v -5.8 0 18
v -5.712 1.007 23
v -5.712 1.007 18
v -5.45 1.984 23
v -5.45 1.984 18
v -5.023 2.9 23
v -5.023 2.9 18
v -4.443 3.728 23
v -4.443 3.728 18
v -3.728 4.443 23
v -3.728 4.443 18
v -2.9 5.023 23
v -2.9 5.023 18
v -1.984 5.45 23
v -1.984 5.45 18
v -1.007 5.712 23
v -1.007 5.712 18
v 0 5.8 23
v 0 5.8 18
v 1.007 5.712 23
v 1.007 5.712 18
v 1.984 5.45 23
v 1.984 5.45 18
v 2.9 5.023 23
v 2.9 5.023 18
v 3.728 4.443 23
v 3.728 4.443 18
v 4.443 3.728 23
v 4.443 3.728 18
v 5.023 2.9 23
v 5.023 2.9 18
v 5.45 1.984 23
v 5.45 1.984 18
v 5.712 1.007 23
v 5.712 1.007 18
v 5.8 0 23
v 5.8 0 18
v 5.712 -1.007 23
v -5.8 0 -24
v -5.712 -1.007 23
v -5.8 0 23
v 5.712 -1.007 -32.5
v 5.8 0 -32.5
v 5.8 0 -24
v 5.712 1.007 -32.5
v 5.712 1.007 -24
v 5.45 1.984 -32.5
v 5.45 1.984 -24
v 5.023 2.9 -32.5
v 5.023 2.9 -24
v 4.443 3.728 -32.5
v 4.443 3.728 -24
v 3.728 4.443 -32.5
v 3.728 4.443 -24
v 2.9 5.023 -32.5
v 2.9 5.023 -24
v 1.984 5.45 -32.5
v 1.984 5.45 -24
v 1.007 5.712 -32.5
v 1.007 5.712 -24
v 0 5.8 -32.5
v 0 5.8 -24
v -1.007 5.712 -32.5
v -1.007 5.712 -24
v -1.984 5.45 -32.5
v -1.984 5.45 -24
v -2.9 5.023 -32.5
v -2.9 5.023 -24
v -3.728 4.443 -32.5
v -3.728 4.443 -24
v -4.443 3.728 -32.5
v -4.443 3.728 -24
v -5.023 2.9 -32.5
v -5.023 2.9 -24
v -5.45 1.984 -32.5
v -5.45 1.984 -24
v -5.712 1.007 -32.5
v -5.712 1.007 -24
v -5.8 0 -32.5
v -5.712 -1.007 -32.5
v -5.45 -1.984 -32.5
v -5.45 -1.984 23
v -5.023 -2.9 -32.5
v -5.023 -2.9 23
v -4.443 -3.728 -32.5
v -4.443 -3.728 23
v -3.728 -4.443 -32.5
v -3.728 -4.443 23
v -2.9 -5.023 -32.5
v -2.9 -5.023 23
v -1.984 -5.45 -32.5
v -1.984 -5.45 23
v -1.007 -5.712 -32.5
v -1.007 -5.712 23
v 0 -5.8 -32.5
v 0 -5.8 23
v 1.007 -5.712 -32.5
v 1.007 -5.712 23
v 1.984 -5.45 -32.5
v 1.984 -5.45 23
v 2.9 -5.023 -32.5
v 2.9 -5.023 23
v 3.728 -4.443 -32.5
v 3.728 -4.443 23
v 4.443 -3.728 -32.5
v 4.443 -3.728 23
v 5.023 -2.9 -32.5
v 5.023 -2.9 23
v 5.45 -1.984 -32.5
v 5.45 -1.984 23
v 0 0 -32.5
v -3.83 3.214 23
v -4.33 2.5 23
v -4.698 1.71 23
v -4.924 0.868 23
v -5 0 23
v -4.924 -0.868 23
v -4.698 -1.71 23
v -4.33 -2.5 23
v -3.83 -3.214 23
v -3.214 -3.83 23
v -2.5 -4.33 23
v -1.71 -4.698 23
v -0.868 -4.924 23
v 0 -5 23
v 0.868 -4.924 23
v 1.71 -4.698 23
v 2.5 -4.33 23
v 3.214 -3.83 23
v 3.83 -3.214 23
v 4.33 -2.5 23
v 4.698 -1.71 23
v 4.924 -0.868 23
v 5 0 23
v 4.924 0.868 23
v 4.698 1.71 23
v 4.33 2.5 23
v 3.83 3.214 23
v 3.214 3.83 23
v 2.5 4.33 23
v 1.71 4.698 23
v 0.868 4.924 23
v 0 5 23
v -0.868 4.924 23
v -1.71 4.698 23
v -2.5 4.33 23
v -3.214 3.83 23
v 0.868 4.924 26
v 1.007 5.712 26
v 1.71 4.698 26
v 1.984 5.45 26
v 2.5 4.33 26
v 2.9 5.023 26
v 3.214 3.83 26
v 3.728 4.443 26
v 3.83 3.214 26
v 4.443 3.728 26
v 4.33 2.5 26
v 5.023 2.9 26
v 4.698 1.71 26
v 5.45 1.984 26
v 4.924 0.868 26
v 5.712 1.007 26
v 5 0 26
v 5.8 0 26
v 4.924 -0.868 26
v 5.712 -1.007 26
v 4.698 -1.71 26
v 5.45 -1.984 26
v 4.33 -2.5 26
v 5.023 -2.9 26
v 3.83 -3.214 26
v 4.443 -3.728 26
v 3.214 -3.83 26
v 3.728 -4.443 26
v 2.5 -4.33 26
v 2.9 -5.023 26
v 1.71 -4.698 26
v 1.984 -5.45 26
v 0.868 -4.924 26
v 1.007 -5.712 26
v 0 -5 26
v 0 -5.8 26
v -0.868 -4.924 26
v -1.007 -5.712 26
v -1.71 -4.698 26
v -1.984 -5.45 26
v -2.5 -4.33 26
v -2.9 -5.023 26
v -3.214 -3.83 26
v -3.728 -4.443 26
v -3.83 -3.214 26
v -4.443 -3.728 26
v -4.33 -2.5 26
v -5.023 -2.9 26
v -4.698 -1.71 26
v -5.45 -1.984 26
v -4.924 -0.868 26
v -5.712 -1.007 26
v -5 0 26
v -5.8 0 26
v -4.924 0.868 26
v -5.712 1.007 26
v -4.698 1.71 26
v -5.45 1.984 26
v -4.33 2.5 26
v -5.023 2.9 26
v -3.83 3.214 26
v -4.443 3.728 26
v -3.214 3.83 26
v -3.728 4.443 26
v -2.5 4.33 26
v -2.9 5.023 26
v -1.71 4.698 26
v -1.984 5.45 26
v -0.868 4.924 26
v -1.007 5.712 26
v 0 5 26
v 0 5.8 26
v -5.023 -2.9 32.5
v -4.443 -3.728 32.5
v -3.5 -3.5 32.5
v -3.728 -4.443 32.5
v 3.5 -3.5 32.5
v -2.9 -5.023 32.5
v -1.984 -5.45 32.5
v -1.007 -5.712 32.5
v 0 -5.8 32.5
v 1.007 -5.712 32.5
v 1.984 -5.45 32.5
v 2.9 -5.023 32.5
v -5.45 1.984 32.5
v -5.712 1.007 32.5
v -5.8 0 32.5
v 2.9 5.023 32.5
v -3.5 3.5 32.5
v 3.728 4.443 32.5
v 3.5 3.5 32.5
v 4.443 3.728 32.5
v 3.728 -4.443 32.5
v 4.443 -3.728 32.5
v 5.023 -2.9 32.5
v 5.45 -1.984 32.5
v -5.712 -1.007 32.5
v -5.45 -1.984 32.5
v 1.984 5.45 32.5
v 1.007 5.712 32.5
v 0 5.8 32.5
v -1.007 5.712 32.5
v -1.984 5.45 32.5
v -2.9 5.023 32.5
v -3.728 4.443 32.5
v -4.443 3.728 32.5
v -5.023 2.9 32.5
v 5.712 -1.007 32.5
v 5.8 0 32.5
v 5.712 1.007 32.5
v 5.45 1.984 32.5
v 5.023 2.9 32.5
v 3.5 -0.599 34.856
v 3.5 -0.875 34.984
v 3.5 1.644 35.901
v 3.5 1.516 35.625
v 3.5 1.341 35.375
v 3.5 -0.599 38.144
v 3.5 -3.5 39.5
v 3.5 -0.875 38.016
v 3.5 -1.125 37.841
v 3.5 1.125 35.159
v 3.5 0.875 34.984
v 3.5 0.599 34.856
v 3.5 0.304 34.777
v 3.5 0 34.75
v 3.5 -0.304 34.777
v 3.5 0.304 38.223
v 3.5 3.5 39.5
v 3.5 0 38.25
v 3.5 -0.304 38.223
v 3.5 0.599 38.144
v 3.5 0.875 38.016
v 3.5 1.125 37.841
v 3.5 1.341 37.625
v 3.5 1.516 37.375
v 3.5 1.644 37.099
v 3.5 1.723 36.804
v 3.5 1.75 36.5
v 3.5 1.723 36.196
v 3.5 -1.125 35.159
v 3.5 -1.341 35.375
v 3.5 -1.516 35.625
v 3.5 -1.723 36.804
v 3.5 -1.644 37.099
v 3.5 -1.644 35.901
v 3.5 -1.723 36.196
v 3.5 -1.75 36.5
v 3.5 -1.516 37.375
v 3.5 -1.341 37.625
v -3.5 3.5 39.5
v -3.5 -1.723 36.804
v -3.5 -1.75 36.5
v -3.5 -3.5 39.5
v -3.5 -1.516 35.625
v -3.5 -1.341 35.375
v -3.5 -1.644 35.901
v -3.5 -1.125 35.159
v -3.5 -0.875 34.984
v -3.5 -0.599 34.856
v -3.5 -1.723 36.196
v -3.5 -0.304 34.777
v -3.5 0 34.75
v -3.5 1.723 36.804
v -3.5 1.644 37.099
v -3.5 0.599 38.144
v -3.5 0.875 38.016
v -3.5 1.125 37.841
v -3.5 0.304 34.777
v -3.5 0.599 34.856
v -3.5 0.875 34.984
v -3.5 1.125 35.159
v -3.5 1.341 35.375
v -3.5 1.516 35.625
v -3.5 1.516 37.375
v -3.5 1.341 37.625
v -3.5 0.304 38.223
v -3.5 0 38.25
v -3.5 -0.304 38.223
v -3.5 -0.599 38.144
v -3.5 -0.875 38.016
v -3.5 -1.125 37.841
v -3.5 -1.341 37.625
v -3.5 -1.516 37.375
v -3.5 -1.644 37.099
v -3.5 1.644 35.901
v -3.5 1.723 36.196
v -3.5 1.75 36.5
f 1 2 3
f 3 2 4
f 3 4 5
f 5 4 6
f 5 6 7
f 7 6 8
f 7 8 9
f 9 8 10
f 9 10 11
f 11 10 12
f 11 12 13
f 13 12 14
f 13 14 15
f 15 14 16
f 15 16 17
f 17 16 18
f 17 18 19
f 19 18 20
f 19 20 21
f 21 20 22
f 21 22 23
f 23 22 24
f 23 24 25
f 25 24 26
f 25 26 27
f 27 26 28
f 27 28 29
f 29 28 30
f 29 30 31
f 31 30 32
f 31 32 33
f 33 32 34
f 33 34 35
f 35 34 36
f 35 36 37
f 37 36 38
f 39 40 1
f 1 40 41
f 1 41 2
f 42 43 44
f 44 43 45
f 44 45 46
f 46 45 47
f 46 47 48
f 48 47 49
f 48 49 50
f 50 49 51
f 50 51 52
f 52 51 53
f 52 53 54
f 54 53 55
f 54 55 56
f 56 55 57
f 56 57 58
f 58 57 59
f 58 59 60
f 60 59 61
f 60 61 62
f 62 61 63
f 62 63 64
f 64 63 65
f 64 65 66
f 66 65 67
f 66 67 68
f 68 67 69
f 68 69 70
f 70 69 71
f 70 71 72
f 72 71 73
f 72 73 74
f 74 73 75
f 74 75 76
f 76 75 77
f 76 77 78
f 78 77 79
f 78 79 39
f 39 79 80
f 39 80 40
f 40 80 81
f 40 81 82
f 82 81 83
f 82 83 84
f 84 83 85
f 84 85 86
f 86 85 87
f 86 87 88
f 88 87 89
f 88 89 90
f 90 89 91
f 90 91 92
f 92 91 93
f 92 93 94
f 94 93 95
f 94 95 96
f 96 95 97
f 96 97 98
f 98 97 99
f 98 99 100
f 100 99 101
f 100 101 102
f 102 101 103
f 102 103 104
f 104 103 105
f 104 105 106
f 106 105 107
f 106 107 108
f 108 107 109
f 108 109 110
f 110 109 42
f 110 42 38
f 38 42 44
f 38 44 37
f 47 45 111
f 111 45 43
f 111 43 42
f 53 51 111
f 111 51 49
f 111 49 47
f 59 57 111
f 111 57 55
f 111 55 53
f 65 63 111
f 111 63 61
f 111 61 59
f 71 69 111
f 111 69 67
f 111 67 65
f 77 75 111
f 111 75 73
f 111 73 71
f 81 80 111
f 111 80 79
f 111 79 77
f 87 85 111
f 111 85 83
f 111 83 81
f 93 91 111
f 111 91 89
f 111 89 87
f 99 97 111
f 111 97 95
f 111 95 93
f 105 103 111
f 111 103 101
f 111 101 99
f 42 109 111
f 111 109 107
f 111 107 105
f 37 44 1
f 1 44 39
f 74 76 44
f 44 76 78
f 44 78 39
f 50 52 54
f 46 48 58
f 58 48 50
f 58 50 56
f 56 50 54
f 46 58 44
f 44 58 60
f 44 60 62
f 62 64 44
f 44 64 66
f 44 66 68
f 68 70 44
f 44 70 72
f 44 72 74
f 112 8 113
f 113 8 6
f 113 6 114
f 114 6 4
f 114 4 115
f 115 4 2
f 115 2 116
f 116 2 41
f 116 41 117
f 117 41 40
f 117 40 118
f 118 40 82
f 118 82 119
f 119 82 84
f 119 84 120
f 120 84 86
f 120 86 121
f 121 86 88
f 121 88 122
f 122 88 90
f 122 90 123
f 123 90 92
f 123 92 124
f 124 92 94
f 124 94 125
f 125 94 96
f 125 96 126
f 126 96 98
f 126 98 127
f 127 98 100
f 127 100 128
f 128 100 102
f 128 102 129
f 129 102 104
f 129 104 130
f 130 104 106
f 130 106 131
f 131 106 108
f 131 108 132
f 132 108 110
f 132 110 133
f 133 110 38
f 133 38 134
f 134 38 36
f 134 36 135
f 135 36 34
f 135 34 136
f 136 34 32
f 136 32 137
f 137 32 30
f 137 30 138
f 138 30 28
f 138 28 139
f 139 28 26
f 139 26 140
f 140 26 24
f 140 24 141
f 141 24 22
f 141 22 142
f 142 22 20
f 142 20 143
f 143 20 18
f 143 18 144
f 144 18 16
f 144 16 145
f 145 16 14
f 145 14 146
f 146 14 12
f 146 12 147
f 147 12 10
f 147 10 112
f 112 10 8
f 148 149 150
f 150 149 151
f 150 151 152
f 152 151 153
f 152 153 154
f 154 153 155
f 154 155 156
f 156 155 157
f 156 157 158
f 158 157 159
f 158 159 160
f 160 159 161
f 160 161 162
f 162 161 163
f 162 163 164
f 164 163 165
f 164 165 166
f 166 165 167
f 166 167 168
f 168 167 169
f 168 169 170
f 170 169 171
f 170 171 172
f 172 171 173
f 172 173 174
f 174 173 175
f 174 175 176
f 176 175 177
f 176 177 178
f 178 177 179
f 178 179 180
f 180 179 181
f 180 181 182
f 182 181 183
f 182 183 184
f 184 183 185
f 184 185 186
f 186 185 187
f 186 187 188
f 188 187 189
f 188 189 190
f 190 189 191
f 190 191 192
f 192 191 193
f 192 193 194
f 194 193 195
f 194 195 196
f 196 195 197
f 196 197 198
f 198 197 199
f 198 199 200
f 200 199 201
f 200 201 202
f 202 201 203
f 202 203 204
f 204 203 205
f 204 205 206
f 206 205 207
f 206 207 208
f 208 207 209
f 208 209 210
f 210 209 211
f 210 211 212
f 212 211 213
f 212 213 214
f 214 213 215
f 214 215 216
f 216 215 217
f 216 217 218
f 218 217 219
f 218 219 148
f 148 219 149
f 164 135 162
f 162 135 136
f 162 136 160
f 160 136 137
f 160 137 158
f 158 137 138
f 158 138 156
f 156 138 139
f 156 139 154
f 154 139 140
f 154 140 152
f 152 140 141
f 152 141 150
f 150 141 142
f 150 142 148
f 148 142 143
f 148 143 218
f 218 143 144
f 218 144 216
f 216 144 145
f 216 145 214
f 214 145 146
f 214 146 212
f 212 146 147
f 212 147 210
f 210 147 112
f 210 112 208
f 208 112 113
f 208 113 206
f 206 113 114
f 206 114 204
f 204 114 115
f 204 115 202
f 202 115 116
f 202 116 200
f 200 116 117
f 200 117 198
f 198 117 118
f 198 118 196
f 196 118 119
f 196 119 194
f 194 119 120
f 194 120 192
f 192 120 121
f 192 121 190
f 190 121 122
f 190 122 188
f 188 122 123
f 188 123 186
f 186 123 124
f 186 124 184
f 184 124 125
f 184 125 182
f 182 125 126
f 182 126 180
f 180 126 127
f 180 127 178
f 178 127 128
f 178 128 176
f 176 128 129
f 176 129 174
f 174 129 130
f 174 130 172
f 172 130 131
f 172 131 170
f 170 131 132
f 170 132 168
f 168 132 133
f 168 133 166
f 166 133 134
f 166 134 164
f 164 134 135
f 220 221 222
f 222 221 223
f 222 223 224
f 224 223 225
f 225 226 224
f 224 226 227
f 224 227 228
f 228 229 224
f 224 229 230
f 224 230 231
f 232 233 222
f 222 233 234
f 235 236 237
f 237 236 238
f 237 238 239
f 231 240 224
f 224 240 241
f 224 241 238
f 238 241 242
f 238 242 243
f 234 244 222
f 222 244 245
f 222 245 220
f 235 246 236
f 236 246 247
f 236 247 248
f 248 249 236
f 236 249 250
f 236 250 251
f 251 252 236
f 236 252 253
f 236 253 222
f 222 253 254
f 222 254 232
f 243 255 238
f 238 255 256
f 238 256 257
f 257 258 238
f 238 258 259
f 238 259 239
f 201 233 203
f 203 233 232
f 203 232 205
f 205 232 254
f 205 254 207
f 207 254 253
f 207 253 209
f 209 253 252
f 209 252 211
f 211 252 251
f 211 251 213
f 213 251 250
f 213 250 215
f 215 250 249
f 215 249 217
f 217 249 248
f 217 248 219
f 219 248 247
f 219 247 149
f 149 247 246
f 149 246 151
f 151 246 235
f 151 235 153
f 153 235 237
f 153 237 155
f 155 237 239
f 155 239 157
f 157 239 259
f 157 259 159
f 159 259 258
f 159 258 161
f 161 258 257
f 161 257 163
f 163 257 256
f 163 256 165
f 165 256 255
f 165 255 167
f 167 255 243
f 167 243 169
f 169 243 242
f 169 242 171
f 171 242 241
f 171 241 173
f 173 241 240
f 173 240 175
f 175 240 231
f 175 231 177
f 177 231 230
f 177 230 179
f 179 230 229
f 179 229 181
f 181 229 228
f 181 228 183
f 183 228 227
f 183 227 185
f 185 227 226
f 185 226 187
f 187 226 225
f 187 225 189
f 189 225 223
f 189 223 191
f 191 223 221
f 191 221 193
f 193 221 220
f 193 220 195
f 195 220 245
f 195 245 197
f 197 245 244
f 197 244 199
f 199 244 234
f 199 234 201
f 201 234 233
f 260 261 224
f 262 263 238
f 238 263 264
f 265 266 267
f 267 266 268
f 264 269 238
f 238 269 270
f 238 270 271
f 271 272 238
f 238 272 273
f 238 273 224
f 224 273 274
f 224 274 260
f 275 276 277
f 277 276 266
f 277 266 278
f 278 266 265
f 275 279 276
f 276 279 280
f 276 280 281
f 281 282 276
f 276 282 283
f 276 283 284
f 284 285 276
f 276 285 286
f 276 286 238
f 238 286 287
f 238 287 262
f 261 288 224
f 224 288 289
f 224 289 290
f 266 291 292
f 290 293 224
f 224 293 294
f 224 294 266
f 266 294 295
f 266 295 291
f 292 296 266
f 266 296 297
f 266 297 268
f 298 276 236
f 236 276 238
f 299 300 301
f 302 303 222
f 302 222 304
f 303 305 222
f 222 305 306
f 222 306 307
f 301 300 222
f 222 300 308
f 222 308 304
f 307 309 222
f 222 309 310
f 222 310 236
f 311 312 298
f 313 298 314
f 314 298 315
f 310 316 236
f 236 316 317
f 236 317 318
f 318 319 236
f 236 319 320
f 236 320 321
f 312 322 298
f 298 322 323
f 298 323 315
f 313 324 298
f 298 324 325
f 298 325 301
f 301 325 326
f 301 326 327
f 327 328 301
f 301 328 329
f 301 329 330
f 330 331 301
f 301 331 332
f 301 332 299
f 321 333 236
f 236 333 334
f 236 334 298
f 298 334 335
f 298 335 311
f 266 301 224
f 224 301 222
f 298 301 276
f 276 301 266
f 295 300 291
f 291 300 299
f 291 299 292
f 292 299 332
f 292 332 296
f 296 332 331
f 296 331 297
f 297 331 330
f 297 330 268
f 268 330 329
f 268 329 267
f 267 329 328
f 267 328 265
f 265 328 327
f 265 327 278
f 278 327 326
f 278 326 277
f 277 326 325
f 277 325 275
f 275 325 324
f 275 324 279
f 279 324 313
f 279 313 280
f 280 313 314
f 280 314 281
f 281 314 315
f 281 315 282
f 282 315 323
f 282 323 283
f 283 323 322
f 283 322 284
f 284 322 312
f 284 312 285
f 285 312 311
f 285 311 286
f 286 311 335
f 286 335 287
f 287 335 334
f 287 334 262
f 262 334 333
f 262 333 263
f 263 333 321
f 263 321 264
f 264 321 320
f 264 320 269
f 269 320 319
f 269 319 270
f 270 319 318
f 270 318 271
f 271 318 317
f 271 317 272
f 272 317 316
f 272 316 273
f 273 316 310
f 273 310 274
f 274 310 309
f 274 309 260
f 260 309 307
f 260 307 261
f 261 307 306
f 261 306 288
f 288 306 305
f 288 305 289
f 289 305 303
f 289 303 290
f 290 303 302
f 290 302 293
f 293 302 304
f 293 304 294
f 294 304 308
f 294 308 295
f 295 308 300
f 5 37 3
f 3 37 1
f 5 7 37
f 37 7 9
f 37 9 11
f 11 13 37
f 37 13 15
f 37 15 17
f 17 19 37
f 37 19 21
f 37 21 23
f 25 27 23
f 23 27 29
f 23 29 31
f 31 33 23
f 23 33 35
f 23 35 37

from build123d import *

# Parameters (mm, degrees)
CROQUIS1_R                   = 5.8
SALIENTE_EXTRUIR1_DEPTH      = 32.5
CORTAR_EXTRUIR1_DEPTH        = 24
CORTAR_EXTRUIR_L_MINA1_START = -6.5
CROQUIS3_R                   = 5.8
CROQUIS3_R_2                 = 5
CORTAR_EXTRUIR_L_MINA1_DEPTH = 3
CROQUIS4_W                   = 7
CROQUIS4_H                   = 7
SALIENTE_EXTRUIR2_DEPTH      = 7
CROQUIS6_R                   = 1.75
CORTAR_EXTRUIR3_DEPTH        = 41.992438327
CORTAR_EXTRUIR4_START        = 18
CORTAR_EXTRUIR4_DEPTH        = 18


with BuildPart() as part:
    # Croquis1 → Saliente-Extruir1 (new, symmetric)
    with BuildSketch(Plane.XY):
        Circle(CROQUIS1_R)
    extrude(amount=SALIENTE_EXTRUIR1_DEPTH, both=True)

    # Croquis2 → Cortar-Extruir1 (cut)
    with BuildSketch(Plane.XY):
        with BuildLine():
            Line((-5.8, 0), (5.8, 0))
            ThreePointArc((5.8, 0), (0, 5.8), (-5.8, 0))
        make_face()
    extrude(amount=-CORTAR_EXTRUIR1_DEPTH, mode=Mode.SUBTRACT)

    # Croquis3 → Cortar-Extruir-Lámina1 (cut)
    with BuildSketch(Plane.XY.offset(32.5).offset(CORTAR_EXTRUIR_L_MINA1_START)):
        Circle(CROQUIS3_R)
        Circle(CROQUIS3_R_2, mode=Mode.SUBTRACT)
    extrude(amount=-CORTAR_EXTRUIR_L_MINA1_DEPTH, mode=Mode.SUBTRACT)

    # Croquis4 → Saliente-Extruir2 (add)
    with BuildSketch(Plane.XY.offset(32.5)):
        Rectangle(CROQUIS4_W, CROQUIS4_H)
    extrude(amount=SALIENTE_EXTRUIR2_DEPTH)

    # Croquis6 → Cortar-Extruir3 (cut, through all)
    with BuildSketch(Plane.ZY.offset(3.5)):
        with Locations((36.5, 0)):
            Circle(CROQUIS6_R)
    extrude(amount=-CORTAR_EXTRUIR3_DEPTH, mode=Mode.SUBTRACT)

    # Croquis2<2> → Cortar-Extruir4 (cut)
    with BuildSketch(Plane.XY.offset(CORTAR_EXTRUIR4_START)):
        with BuildLine():
            Line((-5.8, 0), (5.8, 0))
            ThreePointArc((5.8, 0), (0, 5.8), (-5.8, 0))
        make_face()
    extrude(amount=-CORTAR_EXTRUIR4_DEPTH, mode=Mode.SUBTRACT)


solid = part.part
